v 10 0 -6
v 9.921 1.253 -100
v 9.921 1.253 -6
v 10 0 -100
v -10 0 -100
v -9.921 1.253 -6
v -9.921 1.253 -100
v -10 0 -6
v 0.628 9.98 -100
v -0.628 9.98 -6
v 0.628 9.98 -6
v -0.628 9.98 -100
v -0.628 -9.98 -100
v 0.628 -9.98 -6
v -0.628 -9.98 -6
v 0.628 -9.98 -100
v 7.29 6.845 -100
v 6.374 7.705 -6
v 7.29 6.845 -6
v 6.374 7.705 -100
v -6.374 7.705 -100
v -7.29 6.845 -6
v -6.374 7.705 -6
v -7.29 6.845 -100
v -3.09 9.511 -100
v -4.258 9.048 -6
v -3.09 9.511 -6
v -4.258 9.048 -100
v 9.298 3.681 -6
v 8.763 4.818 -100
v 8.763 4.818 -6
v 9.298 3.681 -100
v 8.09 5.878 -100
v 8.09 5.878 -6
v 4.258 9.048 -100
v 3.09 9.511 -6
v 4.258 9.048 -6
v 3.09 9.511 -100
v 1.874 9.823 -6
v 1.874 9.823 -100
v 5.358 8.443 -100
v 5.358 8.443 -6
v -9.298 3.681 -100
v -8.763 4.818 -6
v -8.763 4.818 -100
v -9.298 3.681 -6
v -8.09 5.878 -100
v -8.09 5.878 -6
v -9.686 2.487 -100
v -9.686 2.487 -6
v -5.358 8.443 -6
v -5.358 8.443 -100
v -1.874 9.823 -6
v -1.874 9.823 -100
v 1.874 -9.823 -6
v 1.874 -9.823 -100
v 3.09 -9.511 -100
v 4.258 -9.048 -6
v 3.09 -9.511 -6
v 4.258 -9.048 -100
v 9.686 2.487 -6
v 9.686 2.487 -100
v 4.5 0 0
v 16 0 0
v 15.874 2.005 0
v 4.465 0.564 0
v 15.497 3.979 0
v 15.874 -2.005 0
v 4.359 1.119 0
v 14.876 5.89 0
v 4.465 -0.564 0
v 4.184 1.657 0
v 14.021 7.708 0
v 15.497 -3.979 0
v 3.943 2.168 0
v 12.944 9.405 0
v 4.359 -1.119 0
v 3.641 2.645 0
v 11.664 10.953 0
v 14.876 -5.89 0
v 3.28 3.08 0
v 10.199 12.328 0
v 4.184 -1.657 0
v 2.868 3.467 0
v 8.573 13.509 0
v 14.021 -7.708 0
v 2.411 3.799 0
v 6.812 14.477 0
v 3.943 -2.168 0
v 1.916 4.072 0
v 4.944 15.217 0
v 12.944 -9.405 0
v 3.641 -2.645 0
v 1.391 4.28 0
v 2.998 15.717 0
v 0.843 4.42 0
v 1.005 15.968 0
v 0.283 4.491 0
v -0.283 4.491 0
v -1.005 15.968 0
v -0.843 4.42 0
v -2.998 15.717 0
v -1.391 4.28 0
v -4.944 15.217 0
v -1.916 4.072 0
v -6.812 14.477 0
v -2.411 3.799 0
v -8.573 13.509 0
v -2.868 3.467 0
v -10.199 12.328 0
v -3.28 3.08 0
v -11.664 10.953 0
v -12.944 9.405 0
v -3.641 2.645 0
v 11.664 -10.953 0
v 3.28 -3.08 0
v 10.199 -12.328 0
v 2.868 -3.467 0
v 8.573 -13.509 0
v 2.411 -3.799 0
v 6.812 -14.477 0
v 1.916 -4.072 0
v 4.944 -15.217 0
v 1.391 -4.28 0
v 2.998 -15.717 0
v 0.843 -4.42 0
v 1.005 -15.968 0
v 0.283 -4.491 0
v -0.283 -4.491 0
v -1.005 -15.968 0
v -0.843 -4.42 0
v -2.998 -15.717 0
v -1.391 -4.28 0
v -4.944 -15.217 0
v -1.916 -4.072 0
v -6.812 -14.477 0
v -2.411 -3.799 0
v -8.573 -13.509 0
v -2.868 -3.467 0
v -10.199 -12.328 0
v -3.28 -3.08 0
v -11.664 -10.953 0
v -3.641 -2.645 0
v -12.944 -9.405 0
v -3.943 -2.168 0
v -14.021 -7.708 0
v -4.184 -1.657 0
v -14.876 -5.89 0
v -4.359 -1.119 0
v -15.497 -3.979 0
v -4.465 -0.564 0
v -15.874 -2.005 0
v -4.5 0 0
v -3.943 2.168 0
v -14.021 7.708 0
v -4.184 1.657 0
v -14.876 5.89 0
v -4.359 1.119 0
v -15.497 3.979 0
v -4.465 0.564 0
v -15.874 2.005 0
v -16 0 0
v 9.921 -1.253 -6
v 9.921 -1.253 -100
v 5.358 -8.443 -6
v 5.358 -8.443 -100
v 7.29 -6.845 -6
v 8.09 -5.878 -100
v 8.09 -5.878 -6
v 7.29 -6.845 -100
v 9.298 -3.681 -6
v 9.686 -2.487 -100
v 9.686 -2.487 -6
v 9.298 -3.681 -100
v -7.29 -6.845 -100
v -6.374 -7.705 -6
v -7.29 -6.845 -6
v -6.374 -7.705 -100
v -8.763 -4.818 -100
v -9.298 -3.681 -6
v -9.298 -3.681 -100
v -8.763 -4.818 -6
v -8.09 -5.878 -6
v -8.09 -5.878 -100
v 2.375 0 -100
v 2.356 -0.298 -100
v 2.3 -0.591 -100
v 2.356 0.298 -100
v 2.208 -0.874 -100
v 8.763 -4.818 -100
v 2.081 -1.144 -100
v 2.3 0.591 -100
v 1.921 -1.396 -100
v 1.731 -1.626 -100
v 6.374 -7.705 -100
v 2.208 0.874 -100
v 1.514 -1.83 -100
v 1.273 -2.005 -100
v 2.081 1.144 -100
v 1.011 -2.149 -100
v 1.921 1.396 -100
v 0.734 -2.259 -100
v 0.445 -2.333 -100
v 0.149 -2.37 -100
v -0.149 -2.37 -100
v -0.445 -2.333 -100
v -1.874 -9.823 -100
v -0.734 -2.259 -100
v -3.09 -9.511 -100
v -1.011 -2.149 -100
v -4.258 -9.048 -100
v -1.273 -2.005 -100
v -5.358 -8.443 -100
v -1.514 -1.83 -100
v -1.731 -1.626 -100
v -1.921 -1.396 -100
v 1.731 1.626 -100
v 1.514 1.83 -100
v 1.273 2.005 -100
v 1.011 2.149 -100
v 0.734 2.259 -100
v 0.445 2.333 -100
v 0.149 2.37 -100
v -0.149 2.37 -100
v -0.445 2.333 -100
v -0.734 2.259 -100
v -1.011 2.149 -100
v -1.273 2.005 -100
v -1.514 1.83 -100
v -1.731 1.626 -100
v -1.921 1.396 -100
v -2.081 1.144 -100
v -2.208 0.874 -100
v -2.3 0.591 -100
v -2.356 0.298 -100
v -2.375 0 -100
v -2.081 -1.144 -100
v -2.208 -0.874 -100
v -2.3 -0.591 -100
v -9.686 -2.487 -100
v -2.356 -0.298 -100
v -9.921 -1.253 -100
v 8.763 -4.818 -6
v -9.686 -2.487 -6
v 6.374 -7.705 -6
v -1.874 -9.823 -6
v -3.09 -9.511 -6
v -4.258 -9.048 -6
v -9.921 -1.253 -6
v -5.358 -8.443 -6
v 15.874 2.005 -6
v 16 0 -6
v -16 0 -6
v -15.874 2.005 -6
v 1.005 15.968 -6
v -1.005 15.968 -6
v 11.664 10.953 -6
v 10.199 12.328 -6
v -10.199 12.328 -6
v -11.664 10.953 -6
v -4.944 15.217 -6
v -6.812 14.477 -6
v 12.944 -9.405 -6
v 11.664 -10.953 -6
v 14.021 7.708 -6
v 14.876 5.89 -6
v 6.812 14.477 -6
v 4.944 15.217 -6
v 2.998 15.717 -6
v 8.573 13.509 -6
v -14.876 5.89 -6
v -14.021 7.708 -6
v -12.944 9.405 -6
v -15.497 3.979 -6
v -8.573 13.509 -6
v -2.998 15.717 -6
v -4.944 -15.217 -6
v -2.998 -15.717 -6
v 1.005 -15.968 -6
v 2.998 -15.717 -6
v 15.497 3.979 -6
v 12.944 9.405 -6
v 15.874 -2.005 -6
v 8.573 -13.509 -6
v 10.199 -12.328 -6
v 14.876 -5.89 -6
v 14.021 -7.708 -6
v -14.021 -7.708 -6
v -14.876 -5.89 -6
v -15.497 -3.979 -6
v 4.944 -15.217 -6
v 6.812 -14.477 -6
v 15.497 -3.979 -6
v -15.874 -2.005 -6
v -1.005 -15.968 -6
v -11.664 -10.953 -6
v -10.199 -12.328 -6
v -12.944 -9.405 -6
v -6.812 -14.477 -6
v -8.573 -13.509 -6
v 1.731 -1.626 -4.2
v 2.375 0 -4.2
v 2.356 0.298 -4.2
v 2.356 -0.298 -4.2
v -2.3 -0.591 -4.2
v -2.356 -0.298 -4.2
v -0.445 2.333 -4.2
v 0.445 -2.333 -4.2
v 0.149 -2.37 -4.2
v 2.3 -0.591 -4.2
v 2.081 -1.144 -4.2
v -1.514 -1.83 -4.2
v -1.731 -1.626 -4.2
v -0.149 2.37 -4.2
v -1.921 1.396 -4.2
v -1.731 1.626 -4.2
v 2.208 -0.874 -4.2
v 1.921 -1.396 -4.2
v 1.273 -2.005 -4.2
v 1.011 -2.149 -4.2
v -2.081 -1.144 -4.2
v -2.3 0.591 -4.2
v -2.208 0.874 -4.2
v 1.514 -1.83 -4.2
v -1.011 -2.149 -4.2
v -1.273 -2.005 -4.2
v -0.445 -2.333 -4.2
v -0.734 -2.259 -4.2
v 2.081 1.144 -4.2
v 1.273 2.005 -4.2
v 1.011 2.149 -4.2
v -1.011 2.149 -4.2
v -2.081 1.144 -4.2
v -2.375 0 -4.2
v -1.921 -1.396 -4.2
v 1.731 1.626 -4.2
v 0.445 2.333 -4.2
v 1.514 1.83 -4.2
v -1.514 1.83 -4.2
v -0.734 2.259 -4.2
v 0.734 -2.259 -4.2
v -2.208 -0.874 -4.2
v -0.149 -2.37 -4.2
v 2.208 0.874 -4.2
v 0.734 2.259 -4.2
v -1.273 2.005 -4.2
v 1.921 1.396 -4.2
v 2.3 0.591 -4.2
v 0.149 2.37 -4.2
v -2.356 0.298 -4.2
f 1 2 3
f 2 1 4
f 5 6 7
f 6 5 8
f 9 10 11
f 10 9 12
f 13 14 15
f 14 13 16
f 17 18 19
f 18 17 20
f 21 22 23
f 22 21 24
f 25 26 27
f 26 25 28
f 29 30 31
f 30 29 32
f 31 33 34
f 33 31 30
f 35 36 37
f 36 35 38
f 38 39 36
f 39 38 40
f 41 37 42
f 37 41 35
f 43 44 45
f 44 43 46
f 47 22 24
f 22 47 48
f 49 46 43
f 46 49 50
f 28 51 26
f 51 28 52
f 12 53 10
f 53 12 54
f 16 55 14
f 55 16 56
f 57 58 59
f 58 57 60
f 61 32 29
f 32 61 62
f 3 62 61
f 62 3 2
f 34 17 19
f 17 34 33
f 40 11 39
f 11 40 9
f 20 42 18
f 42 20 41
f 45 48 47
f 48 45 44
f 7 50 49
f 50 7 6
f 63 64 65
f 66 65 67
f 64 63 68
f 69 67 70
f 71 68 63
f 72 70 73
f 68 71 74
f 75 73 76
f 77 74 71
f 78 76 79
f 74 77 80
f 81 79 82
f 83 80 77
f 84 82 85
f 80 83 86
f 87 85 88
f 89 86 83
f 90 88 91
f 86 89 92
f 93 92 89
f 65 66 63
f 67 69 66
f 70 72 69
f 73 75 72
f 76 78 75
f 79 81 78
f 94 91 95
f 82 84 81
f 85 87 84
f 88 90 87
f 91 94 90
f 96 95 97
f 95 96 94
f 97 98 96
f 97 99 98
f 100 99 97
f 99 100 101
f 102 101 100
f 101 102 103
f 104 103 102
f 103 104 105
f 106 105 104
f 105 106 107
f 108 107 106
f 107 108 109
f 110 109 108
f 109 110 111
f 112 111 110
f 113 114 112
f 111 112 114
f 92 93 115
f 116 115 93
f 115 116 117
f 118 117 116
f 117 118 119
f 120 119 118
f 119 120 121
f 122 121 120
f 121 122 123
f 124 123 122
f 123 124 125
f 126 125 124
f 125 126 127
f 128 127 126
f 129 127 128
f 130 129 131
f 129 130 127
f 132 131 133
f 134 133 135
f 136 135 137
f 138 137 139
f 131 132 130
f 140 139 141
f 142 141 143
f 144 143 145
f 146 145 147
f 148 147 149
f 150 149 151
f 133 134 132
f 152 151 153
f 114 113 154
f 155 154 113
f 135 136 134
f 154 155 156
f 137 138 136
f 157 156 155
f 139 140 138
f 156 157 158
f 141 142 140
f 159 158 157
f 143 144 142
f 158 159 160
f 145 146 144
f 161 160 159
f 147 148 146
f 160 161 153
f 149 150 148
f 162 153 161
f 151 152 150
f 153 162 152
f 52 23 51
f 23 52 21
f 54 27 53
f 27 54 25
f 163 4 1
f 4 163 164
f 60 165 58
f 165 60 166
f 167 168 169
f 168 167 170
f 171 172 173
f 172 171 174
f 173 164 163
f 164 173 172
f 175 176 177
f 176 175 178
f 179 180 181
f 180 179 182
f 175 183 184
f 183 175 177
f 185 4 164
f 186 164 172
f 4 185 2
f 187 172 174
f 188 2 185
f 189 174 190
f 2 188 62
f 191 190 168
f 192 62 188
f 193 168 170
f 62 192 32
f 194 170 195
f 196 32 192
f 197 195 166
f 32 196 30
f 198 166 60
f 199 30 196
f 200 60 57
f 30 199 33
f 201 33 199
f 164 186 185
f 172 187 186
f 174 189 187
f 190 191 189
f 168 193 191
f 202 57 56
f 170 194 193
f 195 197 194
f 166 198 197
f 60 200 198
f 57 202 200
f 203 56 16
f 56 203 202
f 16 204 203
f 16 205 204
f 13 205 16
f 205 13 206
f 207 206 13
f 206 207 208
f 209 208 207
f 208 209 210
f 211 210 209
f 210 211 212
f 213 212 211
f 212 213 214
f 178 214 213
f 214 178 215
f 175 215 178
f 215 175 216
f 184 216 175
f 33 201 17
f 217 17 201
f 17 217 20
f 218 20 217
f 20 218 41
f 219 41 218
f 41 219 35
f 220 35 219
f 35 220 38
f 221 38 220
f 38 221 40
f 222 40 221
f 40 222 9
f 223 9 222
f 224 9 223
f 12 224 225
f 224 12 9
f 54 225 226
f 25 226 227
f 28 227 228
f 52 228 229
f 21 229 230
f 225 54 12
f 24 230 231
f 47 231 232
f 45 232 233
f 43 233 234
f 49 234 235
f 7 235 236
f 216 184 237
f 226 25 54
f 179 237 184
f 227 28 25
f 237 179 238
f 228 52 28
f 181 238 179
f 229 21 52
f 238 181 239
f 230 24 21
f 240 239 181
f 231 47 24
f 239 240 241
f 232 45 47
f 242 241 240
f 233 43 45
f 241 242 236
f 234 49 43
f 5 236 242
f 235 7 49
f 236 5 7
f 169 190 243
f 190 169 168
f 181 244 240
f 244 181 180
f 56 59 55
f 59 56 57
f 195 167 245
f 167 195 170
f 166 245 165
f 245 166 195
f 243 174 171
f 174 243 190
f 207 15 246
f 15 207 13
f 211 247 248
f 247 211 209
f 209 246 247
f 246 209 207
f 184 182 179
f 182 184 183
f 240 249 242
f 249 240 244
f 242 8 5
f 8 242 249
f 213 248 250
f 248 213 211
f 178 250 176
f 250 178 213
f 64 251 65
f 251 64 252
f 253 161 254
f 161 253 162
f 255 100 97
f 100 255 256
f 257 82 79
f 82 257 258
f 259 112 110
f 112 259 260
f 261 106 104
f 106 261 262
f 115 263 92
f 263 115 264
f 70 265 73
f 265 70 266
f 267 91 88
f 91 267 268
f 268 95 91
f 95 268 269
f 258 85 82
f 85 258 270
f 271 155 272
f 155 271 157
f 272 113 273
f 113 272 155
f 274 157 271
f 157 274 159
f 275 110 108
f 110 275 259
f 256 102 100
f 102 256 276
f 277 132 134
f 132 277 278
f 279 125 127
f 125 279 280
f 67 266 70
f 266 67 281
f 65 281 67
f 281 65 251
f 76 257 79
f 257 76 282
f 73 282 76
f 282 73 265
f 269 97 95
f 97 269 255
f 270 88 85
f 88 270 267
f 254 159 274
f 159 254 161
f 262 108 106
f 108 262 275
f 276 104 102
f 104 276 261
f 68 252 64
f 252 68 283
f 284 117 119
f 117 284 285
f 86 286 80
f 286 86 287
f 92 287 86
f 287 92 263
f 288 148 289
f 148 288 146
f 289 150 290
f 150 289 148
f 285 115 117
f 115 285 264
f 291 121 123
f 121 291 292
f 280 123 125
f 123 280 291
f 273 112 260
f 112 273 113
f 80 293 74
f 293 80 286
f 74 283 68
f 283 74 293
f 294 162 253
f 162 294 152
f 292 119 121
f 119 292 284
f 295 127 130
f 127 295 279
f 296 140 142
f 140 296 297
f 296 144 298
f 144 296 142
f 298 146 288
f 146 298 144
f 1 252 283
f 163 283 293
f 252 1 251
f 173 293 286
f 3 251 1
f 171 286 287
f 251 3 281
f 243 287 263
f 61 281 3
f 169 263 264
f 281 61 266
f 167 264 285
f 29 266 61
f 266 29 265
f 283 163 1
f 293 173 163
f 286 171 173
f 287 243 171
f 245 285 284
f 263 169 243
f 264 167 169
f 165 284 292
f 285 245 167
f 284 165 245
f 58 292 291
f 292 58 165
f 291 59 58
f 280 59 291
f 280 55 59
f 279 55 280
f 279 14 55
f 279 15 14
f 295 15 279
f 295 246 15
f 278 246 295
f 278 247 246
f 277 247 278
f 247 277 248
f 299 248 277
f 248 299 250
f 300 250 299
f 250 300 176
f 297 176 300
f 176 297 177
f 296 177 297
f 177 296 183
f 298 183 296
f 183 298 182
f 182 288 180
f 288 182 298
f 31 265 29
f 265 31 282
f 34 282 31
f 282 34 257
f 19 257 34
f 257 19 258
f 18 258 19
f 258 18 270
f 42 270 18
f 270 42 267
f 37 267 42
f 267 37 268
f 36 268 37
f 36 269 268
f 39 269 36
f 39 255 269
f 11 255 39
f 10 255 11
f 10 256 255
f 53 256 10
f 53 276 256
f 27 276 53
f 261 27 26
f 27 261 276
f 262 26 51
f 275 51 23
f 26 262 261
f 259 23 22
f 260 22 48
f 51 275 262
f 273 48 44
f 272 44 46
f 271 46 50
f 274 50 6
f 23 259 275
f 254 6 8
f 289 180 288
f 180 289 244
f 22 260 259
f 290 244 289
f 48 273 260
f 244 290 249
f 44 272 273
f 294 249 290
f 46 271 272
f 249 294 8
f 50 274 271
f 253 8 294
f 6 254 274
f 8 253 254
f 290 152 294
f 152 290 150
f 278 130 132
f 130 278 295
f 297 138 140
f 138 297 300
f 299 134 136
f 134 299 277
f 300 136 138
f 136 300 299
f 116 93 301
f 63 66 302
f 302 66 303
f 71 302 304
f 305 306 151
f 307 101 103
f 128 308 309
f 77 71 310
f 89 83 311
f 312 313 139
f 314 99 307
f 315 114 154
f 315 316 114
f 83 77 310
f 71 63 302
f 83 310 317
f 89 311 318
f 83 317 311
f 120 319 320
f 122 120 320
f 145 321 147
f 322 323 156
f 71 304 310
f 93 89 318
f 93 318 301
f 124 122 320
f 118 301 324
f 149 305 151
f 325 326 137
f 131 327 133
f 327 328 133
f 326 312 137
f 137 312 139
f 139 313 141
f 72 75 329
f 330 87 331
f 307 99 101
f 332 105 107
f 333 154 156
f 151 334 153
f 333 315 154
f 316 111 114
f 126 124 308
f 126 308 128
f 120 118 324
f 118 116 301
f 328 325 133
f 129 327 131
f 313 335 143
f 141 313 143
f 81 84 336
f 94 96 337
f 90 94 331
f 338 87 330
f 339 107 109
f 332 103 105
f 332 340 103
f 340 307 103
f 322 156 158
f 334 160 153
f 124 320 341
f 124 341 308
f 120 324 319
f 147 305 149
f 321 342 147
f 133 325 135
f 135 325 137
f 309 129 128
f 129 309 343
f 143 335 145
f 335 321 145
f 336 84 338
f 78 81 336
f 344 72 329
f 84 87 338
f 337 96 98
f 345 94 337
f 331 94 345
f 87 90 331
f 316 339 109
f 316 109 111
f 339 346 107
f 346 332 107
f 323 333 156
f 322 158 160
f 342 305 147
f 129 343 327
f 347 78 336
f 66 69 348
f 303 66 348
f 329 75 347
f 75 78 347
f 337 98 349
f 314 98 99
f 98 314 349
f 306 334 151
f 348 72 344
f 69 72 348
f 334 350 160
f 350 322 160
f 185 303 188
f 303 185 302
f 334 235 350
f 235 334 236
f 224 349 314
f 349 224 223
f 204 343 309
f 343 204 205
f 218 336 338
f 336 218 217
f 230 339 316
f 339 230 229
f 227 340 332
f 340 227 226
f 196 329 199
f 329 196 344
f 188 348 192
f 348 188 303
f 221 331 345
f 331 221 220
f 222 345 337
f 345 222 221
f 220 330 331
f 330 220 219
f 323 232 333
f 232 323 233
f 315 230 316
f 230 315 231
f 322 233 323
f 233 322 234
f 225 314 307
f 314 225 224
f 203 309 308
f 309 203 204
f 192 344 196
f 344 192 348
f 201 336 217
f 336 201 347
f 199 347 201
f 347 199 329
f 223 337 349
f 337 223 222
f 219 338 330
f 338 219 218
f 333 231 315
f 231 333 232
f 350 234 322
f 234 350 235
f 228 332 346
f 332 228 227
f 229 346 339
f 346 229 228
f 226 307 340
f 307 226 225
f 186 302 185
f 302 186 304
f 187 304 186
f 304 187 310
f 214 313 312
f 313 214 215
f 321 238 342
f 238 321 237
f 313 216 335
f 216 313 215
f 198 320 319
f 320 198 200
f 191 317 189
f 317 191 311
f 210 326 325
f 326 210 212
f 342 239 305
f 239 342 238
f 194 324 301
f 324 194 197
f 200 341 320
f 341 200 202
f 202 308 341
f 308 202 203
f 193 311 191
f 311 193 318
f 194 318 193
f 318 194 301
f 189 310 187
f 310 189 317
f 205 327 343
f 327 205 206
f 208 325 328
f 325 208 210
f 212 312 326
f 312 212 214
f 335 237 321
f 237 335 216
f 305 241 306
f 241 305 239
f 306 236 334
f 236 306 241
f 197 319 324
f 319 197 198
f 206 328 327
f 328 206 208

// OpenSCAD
$fn = 50;


difference() {
	union() {
		translate(v = [0, 0, -100.0000000000]) {
			cylinder(h = 100, r = 10.0000000000);
		}
		translate(v = [0, 0, -6.0000000000]) {
			cylinder(h = 6, r = 16.0000000000);
		}
	}
	union() {
		translate(v = [0, 0, 0]) {
			rotate(a = [0, 0, 0]) {
				difference() {
					union() {
						#translate(v = [0, 0, -100.0000000000]) {
							cylinder(h = 100, r = 2.2500000000);
						}
						#translate(v = [0, 0, -4.2000000000]) {
							cylinder(h = 4.2000000000, r = 10.0000000000, r1 = 2.3750000000, r2 = 4.5000000000);
						}
						#translate(v = [0, 0, -100.0000000000]) {
							cylinder(h = 100, r = 2.3750000000);
						}
						#translate(v = [0, 0, -100.0000000000]) {
							cylinder(h = 100, r = 2.2500000000);
						}
					}
					union();
				}
			}
		}
	}
}
